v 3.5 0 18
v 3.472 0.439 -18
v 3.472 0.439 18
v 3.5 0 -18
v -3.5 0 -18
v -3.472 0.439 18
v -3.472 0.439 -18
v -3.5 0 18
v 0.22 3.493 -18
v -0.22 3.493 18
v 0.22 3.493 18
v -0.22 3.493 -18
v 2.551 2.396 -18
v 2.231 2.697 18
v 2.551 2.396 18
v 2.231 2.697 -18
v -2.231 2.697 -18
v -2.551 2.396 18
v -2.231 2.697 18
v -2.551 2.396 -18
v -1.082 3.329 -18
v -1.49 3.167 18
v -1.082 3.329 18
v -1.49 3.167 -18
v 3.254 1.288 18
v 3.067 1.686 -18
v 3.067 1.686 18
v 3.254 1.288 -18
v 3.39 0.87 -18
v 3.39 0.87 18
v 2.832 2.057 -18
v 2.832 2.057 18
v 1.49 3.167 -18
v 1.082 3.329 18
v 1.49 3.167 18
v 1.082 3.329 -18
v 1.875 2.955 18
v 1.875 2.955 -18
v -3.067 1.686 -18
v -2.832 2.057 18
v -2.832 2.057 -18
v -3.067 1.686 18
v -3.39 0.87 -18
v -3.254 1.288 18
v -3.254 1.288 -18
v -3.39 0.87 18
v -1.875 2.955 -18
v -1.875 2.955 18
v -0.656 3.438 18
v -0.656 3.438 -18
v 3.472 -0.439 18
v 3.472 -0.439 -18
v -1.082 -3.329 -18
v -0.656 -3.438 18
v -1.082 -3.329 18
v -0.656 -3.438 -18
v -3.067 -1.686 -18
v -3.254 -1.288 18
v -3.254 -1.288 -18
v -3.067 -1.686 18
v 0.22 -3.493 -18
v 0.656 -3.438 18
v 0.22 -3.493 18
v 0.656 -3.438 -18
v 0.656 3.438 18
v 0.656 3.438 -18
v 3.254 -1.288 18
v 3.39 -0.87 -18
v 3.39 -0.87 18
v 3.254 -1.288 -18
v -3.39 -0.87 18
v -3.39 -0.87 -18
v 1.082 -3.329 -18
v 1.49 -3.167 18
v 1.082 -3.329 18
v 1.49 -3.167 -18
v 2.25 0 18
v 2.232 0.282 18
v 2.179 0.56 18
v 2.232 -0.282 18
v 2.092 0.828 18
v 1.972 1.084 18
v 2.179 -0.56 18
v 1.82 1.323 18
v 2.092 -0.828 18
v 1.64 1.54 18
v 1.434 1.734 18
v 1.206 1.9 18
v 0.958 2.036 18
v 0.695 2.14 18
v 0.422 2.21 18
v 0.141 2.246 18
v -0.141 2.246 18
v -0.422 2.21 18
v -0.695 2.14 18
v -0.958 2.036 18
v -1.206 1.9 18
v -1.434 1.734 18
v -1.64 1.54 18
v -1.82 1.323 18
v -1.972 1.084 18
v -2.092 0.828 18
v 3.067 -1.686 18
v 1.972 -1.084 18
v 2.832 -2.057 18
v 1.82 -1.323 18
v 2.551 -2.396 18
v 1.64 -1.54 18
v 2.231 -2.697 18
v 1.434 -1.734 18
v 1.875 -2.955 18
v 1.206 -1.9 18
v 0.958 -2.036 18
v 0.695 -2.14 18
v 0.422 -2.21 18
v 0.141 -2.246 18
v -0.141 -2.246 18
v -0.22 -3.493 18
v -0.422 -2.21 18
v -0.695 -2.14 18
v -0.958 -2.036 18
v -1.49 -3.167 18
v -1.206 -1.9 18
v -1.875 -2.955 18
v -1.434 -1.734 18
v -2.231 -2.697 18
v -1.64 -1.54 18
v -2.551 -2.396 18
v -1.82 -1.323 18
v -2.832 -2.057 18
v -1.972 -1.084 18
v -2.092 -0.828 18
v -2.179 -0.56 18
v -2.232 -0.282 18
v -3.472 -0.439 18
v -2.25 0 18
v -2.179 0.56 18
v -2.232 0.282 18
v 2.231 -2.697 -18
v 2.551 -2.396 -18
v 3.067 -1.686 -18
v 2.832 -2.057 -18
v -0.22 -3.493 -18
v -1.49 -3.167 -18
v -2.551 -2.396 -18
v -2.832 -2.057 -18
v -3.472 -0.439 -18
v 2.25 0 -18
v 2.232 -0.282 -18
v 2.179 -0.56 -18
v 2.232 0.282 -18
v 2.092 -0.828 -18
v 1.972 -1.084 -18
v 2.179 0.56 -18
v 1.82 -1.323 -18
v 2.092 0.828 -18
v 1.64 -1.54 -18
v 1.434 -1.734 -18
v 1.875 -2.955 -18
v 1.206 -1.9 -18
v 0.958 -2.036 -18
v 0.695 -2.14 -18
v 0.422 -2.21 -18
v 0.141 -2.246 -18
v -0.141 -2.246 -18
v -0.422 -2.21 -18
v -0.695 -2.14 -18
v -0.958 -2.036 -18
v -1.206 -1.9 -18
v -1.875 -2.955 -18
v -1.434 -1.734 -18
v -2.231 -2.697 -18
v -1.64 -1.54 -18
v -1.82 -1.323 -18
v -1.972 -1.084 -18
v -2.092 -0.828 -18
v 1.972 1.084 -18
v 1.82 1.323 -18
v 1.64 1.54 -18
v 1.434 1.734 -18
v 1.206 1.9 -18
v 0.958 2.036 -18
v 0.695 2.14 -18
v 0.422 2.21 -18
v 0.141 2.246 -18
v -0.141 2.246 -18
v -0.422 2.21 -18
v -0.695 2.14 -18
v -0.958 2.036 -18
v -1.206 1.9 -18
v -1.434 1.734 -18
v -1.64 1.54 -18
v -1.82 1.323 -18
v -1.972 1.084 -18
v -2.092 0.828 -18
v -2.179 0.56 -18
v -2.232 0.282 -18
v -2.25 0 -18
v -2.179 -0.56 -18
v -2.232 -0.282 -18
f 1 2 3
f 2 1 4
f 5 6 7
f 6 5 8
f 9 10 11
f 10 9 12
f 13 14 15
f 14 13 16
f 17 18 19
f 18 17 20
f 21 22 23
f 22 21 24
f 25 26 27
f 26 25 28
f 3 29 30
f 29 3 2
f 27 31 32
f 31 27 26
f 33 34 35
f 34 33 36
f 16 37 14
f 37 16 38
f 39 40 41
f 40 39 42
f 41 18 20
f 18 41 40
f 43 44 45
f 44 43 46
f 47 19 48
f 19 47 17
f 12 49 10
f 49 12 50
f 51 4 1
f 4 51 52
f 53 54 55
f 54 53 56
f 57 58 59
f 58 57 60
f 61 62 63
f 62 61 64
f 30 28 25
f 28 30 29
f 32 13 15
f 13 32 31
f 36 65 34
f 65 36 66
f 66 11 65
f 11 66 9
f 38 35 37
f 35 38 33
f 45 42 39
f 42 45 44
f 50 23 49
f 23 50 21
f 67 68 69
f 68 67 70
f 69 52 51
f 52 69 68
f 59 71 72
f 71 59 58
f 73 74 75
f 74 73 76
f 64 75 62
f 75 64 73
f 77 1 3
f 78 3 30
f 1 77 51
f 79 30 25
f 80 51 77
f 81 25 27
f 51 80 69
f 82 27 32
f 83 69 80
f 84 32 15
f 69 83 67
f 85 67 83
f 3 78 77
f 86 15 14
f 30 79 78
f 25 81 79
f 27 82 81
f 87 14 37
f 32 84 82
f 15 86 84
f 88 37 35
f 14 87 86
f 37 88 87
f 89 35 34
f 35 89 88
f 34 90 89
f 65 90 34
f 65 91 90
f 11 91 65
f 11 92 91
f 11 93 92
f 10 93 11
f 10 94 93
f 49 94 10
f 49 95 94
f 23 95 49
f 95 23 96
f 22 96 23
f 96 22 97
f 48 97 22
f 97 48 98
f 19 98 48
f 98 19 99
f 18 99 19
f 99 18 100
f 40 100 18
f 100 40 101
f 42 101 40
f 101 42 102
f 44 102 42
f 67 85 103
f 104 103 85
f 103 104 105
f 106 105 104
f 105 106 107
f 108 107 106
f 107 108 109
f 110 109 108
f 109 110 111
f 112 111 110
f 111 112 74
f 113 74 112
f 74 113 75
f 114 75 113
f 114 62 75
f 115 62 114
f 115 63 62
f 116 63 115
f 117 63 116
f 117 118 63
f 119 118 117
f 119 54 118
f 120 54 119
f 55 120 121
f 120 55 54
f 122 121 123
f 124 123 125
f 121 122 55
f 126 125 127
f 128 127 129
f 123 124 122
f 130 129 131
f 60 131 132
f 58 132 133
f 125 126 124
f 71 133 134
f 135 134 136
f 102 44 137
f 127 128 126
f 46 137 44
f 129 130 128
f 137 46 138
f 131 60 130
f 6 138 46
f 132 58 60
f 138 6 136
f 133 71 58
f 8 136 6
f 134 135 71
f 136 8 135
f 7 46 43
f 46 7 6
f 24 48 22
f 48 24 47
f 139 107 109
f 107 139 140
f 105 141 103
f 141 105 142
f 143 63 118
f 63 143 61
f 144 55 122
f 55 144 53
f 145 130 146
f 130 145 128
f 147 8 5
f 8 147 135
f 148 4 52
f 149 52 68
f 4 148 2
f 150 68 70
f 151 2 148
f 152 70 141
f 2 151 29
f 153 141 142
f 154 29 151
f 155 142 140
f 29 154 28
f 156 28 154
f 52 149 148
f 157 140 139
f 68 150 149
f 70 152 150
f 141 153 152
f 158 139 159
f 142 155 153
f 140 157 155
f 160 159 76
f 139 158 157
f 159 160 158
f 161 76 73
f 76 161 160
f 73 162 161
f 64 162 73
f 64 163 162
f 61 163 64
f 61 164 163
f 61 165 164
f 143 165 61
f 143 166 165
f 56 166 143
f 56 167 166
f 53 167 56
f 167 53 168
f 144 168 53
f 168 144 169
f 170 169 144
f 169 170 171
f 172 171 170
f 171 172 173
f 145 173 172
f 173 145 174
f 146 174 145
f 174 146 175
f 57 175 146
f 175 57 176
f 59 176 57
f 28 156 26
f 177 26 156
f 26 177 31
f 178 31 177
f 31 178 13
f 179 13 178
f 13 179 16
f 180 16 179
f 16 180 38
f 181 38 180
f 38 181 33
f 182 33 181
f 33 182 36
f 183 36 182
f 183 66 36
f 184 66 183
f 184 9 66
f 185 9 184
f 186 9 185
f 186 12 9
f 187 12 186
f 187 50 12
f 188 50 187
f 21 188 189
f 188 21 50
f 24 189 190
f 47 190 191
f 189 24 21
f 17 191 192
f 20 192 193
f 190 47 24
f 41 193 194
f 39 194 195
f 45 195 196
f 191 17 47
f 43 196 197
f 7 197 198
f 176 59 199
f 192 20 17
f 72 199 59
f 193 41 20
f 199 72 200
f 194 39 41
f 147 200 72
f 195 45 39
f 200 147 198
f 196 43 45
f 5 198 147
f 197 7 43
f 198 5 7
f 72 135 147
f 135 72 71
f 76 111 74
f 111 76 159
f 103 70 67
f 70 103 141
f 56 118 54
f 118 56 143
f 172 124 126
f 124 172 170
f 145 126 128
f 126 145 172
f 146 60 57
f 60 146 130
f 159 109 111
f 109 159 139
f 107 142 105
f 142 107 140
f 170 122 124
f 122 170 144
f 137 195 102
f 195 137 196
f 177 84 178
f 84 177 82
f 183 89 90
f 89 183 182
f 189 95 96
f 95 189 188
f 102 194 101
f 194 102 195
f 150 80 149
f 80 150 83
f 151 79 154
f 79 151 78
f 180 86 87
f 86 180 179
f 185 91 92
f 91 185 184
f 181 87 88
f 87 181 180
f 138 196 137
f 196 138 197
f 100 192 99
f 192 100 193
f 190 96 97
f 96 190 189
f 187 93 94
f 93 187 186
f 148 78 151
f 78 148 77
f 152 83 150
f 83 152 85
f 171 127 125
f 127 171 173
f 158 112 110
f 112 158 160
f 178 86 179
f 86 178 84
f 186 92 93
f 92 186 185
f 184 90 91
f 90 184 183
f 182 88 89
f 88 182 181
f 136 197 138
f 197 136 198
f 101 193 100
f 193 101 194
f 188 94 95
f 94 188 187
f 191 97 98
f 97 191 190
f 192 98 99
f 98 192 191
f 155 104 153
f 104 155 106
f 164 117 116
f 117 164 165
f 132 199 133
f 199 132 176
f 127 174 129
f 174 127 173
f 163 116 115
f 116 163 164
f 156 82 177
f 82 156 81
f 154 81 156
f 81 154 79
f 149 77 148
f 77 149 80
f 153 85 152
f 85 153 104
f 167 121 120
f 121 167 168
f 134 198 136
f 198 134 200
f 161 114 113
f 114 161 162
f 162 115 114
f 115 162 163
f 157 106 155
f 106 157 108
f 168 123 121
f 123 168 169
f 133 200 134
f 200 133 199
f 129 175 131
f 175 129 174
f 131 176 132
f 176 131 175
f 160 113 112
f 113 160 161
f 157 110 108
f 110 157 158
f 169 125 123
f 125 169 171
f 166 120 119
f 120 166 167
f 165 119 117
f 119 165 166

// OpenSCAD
$fn = 50;


difference() {
	union() {
		translate(v = [0, 0, -18.0000000000]) {
			cylinder(h = 36, r = 3.5000000000);
		}
	}
	union() {
		translate(v = [0, 0, -100.0000000000]) {
			cylinder(h = 200, r = 2.2500000000);
		}
	}
}
